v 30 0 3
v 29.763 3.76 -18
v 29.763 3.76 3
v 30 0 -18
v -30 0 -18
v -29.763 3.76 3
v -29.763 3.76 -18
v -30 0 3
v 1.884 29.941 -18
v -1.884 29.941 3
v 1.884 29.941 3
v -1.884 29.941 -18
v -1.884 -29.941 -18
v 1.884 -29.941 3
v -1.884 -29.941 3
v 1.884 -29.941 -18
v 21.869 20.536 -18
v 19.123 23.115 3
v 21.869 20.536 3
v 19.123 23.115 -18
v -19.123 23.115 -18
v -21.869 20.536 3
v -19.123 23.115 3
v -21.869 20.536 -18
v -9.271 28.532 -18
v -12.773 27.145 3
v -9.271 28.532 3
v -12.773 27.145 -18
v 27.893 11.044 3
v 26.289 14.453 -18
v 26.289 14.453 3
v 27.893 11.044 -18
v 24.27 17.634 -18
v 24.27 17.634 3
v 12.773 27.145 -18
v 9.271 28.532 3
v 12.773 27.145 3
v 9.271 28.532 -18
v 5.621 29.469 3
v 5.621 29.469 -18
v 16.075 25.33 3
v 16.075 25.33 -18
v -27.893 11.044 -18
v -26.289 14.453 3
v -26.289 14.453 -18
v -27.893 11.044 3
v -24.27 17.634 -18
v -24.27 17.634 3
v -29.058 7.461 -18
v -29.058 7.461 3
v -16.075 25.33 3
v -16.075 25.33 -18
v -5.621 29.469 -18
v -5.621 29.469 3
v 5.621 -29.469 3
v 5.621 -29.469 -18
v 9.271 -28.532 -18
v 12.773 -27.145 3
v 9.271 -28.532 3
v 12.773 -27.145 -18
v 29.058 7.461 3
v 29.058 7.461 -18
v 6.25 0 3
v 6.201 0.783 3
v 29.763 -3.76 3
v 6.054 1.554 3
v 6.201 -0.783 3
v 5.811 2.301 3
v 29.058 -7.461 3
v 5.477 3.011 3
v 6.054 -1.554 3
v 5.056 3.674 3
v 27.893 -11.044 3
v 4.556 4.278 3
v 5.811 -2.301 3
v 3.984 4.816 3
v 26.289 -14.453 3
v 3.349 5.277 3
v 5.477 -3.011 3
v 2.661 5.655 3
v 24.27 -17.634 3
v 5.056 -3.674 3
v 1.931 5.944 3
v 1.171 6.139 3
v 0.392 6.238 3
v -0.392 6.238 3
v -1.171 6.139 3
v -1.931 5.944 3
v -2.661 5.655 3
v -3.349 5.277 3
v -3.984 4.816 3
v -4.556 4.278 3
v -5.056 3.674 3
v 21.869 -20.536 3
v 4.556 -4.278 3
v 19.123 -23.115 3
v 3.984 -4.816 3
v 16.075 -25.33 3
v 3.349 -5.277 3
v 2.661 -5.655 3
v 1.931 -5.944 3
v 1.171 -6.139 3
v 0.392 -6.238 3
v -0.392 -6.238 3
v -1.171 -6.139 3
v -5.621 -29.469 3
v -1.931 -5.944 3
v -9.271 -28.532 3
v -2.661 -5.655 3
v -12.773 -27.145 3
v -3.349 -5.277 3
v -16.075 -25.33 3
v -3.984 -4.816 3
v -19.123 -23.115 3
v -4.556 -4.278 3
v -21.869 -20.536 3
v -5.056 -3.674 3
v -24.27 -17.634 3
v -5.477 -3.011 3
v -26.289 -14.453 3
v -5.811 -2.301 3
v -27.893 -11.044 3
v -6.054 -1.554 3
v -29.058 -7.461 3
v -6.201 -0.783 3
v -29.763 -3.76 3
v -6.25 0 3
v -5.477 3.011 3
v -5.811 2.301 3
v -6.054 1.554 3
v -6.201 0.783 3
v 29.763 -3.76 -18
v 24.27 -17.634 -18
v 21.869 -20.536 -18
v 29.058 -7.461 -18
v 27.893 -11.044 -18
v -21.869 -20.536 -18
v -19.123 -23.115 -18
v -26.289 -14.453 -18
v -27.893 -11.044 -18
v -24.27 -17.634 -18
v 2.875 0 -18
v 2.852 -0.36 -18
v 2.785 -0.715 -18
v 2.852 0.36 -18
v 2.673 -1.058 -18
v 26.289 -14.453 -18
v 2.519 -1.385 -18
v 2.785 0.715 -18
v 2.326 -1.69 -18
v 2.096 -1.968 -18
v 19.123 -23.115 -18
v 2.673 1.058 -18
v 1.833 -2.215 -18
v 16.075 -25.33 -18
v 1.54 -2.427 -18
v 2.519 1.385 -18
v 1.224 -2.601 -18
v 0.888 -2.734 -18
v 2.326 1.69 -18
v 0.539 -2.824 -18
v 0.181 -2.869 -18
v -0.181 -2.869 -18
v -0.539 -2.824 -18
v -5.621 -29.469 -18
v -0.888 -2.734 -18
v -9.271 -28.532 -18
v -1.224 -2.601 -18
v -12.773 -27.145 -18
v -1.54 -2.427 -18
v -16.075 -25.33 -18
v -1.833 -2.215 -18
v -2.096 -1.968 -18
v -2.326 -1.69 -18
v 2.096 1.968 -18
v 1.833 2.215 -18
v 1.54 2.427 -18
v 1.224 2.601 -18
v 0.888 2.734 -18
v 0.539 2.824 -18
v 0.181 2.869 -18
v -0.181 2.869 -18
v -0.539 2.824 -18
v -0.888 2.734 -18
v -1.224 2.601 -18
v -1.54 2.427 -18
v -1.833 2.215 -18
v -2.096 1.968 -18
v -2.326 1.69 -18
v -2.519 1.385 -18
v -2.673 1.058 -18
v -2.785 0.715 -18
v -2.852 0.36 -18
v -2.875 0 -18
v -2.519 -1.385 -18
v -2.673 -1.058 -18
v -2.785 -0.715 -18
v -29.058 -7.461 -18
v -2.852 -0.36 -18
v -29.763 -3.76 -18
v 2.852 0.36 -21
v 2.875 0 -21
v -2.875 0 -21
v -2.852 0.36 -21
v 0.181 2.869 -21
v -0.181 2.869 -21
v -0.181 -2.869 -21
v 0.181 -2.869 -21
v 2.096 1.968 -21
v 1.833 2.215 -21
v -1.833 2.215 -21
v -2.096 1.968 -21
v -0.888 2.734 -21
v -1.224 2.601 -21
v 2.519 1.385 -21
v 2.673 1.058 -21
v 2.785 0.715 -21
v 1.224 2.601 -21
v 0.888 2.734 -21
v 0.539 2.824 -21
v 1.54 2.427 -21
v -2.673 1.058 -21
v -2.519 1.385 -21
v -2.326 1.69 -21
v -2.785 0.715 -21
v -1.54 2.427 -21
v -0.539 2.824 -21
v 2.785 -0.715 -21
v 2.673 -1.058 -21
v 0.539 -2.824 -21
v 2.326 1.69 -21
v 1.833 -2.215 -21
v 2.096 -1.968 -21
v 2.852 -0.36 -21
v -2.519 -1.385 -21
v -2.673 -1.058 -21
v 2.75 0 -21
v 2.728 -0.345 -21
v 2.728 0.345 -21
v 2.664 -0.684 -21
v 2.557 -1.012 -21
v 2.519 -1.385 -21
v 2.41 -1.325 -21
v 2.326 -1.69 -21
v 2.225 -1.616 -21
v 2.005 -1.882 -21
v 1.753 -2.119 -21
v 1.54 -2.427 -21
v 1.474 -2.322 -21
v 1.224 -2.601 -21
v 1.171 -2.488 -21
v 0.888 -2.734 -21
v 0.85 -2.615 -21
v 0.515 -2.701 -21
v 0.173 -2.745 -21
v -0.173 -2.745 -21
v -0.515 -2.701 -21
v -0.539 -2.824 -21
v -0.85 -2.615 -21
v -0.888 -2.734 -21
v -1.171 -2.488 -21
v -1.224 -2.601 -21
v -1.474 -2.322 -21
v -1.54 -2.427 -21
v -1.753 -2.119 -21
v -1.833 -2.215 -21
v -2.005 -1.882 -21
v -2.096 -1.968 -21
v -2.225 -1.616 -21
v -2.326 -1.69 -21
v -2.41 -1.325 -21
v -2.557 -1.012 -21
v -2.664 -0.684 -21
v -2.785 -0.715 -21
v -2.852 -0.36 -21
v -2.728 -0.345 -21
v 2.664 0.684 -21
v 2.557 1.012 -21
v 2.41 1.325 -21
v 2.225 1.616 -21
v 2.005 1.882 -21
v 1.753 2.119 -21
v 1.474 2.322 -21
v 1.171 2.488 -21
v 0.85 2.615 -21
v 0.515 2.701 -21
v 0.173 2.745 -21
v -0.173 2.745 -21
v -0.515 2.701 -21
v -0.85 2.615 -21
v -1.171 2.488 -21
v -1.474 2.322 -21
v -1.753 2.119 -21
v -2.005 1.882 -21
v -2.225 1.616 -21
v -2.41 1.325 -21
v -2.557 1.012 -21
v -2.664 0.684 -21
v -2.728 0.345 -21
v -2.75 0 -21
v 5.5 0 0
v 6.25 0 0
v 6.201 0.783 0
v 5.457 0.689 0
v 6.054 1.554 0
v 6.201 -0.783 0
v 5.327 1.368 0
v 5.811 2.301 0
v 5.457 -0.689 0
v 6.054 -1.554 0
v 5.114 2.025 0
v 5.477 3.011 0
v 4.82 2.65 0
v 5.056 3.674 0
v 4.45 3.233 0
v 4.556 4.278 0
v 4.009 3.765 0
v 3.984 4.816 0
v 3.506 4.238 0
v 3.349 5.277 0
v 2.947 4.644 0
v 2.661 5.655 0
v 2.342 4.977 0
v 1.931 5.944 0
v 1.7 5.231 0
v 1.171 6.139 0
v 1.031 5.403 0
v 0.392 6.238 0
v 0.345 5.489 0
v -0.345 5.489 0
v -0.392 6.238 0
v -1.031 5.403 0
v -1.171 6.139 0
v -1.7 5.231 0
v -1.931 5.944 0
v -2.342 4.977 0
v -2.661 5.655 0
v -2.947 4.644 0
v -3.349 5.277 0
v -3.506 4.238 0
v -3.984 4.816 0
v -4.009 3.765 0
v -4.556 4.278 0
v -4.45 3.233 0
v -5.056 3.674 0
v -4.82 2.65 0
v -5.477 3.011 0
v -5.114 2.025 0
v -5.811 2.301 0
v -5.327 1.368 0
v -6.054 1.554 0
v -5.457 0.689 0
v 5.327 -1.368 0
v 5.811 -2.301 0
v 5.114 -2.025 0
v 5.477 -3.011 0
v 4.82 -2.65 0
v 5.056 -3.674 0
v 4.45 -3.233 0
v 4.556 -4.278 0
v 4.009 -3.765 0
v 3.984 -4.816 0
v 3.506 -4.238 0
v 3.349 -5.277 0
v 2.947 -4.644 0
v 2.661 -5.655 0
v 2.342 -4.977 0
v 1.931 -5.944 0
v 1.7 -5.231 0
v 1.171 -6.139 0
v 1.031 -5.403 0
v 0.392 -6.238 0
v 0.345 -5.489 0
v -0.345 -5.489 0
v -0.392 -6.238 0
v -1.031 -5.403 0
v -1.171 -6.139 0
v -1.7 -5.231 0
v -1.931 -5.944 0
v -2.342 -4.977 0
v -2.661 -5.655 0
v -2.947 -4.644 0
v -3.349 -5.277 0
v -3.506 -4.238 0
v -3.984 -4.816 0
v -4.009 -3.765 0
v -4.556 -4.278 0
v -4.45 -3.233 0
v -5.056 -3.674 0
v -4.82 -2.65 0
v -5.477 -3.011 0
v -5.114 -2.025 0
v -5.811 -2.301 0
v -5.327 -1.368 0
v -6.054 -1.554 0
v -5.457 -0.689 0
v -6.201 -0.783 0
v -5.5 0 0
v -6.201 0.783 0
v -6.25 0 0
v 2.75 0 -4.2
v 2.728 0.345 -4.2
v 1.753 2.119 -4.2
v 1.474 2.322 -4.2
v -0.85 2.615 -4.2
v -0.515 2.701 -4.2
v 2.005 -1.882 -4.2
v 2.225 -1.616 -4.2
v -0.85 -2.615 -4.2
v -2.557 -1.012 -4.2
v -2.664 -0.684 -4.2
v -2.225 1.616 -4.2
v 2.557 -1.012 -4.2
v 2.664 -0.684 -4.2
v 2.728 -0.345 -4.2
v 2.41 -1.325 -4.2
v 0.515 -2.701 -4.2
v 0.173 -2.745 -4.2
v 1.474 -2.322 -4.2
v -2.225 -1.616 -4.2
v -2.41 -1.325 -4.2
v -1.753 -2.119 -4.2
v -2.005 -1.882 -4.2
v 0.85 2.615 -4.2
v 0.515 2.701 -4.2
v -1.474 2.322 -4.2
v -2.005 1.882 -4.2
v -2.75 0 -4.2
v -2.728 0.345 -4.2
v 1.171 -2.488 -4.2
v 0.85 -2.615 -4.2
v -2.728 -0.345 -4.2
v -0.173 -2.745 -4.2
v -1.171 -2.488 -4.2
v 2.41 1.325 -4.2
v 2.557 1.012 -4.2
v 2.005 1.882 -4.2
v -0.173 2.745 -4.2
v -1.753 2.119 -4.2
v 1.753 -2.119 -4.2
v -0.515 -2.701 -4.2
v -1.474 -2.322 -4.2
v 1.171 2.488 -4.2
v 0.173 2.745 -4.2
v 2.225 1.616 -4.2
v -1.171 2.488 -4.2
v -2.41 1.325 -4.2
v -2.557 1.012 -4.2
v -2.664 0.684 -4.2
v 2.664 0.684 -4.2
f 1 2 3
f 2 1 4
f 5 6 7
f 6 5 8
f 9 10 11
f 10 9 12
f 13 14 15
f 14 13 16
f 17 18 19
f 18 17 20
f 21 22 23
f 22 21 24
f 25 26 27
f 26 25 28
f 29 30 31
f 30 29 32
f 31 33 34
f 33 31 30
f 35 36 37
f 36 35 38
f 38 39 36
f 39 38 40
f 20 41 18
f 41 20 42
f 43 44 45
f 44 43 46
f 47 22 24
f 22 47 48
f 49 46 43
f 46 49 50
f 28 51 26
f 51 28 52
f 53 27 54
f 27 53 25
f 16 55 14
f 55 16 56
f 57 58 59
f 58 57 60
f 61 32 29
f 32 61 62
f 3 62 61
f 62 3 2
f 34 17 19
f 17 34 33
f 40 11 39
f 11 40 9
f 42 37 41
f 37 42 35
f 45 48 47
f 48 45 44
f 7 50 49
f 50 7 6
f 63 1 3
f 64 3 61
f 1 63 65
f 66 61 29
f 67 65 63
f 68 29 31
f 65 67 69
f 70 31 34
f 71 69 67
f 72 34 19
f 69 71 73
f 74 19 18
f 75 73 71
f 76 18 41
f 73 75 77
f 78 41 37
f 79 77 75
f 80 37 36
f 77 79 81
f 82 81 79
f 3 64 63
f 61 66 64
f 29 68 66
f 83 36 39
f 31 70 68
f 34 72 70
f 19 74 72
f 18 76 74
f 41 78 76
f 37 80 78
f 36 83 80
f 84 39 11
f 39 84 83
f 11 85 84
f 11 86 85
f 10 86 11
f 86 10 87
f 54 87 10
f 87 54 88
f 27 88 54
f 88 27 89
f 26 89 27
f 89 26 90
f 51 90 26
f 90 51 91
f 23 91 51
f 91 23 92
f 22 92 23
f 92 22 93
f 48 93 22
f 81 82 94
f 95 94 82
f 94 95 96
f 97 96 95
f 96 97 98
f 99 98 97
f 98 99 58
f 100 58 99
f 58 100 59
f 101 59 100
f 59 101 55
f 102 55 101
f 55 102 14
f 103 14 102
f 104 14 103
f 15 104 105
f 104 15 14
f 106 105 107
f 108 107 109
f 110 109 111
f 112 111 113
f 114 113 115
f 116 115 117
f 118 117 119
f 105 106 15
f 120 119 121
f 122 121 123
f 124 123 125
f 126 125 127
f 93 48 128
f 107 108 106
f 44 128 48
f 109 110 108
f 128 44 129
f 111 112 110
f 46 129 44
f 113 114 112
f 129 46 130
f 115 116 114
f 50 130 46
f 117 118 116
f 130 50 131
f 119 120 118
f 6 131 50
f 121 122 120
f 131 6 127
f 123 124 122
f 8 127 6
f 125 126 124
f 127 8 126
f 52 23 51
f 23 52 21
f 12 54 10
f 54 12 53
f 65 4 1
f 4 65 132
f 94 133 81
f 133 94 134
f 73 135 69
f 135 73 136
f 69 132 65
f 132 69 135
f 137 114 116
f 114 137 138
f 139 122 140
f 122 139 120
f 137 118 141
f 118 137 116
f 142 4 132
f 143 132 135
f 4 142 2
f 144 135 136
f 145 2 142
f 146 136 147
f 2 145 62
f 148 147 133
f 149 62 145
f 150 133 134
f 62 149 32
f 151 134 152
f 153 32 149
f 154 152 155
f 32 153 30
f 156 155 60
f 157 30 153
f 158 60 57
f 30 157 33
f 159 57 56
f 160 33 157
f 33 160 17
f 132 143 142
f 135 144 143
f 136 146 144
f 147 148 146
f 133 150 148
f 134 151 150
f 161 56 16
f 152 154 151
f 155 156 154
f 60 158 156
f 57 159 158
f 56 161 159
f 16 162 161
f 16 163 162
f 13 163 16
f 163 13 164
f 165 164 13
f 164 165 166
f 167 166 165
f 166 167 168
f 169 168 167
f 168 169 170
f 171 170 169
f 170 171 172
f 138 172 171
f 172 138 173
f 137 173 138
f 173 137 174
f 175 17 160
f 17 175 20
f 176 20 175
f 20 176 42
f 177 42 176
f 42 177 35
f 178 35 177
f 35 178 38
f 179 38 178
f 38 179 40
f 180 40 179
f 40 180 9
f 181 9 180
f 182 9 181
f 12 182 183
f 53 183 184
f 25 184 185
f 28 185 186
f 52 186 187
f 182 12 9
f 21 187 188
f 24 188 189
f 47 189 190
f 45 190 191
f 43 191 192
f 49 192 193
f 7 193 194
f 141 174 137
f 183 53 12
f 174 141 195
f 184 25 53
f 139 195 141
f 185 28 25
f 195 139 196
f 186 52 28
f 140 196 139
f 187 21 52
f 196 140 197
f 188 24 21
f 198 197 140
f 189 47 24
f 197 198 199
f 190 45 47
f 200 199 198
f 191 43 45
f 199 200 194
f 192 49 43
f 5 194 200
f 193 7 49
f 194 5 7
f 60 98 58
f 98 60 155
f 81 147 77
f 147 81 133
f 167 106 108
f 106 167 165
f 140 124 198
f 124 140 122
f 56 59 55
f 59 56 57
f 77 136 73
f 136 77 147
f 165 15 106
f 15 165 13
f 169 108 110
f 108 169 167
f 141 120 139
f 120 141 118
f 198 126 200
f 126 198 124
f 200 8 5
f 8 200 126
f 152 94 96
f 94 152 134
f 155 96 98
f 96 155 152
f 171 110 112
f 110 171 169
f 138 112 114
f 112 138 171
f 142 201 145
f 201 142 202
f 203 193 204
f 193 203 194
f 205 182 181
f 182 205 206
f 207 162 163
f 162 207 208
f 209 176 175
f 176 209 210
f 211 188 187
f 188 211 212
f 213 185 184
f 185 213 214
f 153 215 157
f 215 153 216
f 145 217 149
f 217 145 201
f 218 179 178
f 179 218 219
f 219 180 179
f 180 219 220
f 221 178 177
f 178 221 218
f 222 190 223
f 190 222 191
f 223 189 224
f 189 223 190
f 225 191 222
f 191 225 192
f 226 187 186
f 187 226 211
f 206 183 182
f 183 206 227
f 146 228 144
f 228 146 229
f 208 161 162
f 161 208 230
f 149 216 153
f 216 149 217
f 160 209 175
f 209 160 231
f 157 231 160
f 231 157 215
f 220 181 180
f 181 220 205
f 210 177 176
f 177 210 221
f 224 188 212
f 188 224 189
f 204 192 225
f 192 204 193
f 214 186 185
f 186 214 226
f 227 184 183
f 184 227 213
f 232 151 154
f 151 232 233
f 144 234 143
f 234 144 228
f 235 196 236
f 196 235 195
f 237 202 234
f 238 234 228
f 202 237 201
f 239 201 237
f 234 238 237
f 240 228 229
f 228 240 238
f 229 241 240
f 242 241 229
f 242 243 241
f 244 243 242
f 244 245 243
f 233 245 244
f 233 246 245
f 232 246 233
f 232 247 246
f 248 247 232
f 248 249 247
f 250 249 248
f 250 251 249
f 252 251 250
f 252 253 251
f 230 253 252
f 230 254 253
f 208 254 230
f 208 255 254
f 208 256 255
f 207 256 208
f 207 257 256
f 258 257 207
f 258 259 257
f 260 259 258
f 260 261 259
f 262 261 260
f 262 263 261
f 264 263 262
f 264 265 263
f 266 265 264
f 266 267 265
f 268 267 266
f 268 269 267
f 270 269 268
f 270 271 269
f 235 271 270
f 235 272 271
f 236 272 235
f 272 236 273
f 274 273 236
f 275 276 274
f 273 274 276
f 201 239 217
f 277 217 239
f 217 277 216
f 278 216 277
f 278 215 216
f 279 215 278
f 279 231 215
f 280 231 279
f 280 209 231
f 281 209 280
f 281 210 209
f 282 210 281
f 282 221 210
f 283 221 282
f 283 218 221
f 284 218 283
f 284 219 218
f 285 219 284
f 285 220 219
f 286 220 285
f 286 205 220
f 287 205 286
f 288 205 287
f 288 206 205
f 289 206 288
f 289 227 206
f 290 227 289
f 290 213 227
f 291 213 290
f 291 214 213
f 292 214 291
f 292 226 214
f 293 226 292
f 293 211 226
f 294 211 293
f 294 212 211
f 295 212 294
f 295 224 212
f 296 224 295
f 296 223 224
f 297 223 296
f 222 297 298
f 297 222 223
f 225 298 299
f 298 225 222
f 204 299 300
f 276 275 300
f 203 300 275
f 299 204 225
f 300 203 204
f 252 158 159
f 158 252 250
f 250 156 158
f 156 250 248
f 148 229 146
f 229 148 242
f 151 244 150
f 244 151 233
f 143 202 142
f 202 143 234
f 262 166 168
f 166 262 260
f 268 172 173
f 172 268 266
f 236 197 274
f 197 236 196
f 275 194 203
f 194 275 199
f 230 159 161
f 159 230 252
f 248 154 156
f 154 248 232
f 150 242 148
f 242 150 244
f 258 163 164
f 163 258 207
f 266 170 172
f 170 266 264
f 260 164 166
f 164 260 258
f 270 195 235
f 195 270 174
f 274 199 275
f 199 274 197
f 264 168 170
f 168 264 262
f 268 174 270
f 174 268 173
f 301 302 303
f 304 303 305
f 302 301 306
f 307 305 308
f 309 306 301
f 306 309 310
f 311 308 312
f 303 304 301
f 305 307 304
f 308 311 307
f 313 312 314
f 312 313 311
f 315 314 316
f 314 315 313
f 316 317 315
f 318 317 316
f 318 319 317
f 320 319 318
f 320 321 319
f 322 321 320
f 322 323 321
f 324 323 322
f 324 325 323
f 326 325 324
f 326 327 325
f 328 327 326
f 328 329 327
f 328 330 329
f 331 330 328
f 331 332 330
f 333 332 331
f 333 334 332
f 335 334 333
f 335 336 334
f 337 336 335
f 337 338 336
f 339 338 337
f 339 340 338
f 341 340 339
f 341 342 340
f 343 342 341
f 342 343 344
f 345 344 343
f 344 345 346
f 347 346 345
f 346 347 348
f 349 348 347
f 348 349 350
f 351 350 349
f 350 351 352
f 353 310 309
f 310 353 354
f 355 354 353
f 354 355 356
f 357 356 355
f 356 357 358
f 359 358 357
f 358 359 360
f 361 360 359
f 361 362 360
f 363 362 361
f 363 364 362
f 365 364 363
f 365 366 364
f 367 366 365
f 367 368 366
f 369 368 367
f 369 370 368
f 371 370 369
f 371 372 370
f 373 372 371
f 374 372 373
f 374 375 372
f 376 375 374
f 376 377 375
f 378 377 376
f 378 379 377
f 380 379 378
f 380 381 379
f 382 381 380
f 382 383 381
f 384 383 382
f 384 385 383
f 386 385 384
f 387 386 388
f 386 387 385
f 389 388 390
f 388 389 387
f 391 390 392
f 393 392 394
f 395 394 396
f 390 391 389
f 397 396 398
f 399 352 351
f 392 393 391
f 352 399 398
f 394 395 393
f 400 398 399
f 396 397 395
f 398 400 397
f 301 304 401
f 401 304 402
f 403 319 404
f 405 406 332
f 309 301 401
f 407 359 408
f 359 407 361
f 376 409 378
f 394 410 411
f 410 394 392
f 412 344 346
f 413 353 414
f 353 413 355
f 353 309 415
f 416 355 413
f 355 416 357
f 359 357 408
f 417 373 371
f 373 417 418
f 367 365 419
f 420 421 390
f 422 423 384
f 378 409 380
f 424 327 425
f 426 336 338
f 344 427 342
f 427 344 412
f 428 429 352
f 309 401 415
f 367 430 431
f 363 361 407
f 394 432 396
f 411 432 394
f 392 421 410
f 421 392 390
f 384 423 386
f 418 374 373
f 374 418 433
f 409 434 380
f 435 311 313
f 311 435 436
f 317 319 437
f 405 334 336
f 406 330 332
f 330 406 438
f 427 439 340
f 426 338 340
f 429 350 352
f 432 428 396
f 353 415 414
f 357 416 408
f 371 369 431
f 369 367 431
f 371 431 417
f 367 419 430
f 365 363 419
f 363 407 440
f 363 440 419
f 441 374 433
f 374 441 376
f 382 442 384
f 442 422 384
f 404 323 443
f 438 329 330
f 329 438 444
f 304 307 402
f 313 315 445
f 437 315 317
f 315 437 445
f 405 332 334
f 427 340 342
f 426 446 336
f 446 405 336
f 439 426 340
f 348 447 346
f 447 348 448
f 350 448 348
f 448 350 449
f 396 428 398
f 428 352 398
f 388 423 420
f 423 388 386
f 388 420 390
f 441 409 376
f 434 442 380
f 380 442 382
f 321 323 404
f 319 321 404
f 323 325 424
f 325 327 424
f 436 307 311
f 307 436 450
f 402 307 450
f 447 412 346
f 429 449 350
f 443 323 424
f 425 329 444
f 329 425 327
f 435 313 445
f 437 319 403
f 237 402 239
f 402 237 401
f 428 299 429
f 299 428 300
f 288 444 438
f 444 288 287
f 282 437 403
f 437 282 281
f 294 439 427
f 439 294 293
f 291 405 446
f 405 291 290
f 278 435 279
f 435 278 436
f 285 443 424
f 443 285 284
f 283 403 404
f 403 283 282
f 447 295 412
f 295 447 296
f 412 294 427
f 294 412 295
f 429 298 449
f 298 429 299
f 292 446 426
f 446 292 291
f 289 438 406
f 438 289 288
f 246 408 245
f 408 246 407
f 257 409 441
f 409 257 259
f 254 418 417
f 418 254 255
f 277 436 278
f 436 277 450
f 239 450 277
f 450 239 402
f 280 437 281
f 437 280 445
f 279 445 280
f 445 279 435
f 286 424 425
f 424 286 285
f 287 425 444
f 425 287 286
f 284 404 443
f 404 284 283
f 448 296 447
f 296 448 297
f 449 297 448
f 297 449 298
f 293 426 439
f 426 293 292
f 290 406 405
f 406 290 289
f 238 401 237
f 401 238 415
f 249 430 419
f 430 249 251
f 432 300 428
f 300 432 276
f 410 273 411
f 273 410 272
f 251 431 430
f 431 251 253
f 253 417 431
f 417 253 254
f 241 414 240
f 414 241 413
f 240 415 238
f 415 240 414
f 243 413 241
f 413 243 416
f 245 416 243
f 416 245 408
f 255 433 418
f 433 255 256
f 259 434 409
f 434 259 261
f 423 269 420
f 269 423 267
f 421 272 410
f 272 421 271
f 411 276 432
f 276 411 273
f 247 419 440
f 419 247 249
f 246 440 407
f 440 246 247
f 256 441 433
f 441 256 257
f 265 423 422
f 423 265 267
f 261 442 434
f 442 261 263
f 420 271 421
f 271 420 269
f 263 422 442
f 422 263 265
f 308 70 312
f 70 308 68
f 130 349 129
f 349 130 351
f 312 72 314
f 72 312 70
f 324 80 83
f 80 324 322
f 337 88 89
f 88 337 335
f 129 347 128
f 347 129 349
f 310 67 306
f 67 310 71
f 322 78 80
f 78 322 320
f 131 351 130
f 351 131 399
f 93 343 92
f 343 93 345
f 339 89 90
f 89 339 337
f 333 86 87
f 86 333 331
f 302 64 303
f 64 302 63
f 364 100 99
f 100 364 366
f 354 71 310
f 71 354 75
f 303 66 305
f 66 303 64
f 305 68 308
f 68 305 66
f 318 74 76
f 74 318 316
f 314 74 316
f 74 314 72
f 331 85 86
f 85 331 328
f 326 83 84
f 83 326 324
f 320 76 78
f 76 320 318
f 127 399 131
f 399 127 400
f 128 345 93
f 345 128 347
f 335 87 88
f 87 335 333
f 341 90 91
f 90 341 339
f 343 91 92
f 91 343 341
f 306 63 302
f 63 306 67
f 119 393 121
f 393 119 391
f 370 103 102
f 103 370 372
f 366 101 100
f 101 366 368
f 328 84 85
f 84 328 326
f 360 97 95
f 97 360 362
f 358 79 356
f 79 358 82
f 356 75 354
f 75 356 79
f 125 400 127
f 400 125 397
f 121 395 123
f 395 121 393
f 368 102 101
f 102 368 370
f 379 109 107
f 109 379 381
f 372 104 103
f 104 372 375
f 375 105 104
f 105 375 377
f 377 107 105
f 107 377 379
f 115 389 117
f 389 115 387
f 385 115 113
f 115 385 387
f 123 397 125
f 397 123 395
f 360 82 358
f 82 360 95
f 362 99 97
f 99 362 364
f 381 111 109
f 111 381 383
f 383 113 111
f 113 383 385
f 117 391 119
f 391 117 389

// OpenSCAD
$fn = 50;

difference() {
	union() {
		translate(v = [0, 0, -18.0]) {
			cylinder(h = 21, r = 30.0);
		}
		#translate(v = [0, 0, -21.0]) {
			cylinder(h = 21, r = 2.875);
		}
	}
	union() {
		translate(v = [0, 0, 0]) {
			rotate(a = [0, 0, 0]) {
				difference() {
					union() {
						translate(v = [0, 0, -21.0]) {
							cylinder(h = 21, r = 2.25);
						}
						translate(v = [0, 0, -4.2]) {
							cylinder(h = 4.2, r1 = 2.75, r2 = 5.5);
						}
						translate(v = [0, 0, -21.0]) {
							cylinder(h = 21, r = 2.75);
						}
						translate(v = [0, 0, -21.0]) {
							cylinder(h = 21, r = 2.25);
						}
					}
					union();
				}
			}
		}
		#cylinder(h = 3, r = 6.25);
	}
}
